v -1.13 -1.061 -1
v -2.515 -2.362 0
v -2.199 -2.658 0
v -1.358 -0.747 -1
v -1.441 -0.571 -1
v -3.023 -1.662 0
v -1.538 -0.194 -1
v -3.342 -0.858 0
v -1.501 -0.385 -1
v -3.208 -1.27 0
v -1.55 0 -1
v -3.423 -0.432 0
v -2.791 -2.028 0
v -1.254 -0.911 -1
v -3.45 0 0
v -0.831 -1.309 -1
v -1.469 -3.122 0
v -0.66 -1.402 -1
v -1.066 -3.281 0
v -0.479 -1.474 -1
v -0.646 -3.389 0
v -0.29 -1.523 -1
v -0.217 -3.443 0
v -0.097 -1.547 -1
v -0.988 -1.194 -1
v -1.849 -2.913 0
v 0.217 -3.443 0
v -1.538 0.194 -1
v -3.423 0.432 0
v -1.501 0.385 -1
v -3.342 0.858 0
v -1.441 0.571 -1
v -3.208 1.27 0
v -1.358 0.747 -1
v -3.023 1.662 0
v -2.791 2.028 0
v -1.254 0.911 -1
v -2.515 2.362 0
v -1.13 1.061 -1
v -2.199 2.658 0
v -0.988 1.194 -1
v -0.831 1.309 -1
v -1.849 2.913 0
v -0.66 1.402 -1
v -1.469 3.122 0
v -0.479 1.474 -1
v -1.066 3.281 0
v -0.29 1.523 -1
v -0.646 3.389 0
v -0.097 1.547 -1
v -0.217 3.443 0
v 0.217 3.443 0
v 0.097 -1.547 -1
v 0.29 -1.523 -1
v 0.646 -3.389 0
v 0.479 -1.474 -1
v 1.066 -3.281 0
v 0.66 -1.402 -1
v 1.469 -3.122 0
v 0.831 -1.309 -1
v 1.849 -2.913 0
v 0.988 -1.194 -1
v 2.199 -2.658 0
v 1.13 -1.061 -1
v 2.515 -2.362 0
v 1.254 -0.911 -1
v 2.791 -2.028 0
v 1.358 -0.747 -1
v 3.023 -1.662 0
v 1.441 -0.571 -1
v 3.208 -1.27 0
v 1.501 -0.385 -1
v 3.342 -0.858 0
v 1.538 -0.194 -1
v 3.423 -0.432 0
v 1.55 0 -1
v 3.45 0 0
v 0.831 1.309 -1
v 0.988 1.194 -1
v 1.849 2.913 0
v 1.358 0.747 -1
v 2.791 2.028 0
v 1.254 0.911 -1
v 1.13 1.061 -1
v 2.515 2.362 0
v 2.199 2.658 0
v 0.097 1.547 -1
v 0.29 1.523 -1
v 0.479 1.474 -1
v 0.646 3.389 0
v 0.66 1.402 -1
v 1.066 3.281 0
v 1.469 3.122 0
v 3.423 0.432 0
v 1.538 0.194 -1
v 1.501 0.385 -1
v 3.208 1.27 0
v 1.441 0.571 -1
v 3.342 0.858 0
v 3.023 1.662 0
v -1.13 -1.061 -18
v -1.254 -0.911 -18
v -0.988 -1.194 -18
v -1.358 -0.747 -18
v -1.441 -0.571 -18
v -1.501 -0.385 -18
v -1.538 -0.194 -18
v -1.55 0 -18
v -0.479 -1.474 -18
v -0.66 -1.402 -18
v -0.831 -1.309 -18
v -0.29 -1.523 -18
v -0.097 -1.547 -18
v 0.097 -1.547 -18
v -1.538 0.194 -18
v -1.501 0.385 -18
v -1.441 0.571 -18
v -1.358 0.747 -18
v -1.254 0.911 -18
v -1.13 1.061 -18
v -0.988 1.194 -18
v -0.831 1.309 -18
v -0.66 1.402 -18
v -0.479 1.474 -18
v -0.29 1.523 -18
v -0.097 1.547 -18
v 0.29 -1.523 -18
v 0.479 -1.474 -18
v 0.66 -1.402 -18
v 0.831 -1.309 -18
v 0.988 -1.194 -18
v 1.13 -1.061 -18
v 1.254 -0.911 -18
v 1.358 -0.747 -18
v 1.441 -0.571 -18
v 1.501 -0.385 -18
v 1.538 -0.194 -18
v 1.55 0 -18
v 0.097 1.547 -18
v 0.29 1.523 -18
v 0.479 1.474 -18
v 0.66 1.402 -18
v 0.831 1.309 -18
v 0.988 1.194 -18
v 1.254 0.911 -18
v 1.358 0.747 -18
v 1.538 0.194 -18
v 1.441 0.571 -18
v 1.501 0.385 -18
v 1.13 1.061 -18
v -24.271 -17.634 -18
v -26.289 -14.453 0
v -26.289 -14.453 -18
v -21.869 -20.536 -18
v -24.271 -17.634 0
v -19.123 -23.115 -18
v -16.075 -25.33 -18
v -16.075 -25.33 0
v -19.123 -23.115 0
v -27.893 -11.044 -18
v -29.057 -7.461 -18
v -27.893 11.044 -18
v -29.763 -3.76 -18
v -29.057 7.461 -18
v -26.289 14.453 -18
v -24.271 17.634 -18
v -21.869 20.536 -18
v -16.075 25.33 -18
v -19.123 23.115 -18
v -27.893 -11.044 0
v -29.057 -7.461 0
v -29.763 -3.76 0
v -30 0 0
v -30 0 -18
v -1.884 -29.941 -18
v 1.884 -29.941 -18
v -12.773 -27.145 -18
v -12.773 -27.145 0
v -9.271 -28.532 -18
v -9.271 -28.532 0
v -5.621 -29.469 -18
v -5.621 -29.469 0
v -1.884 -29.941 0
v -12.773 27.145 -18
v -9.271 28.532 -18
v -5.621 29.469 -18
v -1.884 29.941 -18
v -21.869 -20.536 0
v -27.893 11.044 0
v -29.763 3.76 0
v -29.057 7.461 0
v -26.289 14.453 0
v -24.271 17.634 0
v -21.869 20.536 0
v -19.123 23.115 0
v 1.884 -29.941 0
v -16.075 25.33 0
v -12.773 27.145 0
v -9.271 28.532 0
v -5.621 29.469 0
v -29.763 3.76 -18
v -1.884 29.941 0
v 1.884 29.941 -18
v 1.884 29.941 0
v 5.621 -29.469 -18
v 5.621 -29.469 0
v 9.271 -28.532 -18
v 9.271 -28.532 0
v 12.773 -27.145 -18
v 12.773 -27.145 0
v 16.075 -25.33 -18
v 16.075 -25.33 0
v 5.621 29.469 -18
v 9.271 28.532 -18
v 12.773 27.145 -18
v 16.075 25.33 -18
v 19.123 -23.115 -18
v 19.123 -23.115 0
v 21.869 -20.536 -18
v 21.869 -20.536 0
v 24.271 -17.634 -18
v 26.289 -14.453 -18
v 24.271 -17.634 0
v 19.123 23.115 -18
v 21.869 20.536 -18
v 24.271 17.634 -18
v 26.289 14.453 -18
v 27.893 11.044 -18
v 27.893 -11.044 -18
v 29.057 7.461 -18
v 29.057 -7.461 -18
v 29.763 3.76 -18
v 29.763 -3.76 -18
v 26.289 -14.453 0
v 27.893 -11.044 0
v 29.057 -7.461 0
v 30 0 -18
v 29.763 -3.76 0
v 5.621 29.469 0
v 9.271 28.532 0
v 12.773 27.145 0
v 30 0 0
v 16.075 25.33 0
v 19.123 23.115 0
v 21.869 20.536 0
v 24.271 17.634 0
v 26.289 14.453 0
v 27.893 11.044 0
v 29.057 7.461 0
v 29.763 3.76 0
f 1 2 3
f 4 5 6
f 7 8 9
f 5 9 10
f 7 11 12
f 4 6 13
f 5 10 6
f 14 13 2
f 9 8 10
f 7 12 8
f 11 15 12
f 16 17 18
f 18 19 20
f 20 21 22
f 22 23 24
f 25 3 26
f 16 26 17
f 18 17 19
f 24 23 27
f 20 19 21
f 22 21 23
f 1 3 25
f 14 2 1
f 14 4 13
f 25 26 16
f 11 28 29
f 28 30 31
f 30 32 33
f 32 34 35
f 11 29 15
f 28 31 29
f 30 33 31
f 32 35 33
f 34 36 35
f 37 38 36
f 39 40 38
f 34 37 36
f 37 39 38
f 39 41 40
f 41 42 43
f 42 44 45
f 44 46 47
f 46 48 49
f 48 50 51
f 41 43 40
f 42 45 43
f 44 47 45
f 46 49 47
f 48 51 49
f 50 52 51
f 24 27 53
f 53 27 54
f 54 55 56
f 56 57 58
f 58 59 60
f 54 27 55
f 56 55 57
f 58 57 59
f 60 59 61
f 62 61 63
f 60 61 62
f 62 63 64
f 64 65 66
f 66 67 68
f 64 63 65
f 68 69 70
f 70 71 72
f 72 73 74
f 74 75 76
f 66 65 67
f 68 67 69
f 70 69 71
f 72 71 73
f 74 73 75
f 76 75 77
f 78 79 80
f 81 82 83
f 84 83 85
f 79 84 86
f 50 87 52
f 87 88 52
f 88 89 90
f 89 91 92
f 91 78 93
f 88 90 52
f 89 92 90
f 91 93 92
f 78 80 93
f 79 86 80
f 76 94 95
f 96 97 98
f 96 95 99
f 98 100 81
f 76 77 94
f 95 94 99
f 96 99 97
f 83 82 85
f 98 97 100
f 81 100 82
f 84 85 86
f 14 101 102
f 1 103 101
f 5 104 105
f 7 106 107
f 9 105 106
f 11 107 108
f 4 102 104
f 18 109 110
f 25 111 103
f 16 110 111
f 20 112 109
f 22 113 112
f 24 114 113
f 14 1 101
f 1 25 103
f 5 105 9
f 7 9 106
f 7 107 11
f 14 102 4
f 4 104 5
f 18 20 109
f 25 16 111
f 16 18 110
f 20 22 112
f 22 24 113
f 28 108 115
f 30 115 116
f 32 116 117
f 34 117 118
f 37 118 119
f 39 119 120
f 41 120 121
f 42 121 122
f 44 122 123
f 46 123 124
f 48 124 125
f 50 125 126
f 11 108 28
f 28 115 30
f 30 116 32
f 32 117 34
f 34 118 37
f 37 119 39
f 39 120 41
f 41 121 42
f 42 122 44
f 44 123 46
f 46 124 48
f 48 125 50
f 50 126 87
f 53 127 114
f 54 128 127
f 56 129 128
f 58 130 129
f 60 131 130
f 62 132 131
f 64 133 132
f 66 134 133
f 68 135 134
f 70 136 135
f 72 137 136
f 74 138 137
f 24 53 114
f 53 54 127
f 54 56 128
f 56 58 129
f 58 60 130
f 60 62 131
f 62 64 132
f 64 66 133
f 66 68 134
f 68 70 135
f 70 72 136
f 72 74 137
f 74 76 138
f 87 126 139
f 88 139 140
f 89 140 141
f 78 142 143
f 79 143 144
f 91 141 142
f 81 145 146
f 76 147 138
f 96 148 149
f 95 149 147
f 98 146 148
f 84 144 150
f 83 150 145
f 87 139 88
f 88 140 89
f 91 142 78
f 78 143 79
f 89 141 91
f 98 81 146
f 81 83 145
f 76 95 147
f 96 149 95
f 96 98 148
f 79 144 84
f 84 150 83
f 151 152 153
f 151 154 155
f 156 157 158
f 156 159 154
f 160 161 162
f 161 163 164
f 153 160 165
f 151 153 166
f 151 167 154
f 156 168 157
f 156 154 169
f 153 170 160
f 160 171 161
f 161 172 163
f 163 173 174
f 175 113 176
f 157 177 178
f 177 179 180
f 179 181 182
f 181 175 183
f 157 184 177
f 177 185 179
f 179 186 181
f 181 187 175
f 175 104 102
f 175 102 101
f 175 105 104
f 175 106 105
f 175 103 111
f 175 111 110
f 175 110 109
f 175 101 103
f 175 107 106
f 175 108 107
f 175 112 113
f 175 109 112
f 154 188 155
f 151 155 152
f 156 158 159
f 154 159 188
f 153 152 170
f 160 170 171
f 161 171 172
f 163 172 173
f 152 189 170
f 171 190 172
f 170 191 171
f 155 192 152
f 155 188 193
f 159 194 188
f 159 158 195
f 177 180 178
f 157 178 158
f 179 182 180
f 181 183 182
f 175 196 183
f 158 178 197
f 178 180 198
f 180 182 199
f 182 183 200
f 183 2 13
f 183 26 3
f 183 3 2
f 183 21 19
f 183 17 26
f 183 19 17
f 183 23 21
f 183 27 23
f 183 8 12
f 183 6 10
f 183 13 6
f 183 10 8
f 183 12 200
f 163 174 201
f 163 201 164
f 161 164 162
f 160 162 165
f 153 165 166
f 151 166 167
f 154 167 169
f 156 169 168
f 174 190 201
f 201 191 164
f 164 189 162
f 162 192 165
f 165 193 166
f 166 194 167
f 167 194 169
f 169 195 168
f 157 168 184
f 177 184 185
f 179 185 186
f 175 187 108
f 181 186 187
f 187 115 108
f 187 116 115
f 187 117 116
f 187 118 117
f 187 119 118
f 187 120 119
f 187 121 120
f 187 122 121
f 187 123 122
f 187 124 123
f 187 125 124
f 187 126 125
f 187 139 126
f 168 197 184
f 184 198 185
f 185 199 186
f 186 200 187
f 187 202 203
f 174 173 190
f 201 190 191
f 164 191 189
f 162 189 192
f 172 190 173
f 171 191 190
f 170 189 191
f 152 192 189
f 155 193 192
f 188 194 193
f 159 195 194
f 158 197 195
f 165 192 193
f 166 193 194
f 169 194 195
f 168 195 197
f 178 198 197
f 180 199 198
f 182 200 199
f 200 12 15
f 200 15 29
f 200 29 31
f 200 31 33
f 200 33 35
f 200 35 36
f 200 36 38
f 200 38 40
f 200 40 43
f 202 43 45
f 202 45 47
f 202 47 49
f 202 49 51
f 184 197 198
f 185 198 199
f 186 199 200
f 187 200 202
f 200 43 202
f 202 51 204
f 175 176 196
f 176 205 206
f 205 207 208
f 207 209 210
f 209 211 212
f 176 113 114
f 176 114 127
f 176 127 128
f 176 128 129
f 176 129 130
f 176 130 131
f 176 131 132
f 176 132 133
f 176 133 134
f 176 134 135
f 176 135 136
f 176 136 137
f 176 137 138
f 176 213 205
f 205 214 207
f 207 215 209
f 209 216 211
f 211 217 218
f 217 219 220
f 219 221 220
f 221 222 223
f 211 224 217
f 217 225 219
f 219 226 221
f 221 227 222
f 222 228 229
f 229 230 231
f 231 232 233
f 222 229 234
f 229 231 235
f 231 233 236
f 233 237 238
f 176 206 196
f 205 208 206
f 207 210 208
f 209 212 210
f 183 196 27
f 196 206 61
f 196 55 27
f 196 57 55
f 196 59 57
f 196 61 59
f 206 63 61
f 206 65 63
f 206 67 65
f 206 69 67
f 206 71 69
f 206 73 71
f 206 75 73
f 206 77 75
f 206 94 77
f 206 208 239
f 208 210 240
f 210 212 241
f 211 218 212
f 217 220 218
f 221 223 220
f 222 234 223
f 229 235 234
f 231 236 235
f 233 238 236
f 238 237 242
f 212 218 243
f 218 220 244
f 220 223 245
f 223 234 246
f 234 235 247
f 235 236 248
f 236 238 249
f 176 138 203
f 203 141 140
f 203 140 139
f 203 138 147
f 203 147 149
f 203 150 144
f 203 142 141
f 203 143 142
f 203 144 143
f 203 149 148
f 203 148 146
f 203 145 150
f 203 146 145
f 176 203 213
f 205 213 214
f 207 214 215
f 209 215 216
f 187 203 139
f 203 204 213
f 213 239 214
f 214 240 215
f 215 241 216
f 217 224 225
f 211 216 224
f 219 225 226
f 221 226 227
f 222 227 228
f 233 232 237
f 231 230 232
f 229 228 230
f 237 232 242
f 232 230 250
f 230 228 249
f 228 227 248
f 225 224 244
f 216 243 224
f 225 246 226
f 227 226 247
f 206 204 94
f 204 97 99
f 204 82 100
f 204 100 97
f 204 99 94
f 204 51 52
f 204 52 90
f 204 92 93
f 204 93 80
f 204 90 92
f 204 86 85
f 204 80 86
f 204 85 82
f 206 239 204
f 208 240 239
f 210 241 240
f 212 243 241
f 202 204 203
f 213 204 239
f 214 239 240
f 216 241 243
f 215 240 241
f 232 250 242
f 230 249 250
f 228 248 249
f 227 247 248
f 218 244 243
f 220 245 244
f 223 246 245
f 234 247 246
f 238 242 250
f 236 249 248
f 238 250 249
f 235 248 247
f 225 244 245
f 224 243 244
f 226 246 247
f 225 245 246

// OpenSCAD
$fn = 50;

difference() {
	union() {
		translate(v = [0, 0, -18.0]) {
			cylinder(h = 18, r = 30.0);
		}
	}
	union() {
		translate(v = [0, 0, 0]) {
			rotate(a = [0, 0, 0]) {
				difference() {
					union() {
						translate(v = [0, 0, -21.0]) {
							cylinder(h = 21, r = 1.25);
						}
						translate(v = [0, 0, -1.0]) {
							cylinder(h = 1.0, r1 = 1.55, r2 = 3.45);
						}
						translate(v = [0, 0, -21.0]) {
							cylinder(h = 21, r = 1.55);
						}
						translate(v = [0, 0, -21.0]) {
							cylinder(h = 21, r = 1.25);
						}
					}
					union();
				}
			}
		}
	}
}
